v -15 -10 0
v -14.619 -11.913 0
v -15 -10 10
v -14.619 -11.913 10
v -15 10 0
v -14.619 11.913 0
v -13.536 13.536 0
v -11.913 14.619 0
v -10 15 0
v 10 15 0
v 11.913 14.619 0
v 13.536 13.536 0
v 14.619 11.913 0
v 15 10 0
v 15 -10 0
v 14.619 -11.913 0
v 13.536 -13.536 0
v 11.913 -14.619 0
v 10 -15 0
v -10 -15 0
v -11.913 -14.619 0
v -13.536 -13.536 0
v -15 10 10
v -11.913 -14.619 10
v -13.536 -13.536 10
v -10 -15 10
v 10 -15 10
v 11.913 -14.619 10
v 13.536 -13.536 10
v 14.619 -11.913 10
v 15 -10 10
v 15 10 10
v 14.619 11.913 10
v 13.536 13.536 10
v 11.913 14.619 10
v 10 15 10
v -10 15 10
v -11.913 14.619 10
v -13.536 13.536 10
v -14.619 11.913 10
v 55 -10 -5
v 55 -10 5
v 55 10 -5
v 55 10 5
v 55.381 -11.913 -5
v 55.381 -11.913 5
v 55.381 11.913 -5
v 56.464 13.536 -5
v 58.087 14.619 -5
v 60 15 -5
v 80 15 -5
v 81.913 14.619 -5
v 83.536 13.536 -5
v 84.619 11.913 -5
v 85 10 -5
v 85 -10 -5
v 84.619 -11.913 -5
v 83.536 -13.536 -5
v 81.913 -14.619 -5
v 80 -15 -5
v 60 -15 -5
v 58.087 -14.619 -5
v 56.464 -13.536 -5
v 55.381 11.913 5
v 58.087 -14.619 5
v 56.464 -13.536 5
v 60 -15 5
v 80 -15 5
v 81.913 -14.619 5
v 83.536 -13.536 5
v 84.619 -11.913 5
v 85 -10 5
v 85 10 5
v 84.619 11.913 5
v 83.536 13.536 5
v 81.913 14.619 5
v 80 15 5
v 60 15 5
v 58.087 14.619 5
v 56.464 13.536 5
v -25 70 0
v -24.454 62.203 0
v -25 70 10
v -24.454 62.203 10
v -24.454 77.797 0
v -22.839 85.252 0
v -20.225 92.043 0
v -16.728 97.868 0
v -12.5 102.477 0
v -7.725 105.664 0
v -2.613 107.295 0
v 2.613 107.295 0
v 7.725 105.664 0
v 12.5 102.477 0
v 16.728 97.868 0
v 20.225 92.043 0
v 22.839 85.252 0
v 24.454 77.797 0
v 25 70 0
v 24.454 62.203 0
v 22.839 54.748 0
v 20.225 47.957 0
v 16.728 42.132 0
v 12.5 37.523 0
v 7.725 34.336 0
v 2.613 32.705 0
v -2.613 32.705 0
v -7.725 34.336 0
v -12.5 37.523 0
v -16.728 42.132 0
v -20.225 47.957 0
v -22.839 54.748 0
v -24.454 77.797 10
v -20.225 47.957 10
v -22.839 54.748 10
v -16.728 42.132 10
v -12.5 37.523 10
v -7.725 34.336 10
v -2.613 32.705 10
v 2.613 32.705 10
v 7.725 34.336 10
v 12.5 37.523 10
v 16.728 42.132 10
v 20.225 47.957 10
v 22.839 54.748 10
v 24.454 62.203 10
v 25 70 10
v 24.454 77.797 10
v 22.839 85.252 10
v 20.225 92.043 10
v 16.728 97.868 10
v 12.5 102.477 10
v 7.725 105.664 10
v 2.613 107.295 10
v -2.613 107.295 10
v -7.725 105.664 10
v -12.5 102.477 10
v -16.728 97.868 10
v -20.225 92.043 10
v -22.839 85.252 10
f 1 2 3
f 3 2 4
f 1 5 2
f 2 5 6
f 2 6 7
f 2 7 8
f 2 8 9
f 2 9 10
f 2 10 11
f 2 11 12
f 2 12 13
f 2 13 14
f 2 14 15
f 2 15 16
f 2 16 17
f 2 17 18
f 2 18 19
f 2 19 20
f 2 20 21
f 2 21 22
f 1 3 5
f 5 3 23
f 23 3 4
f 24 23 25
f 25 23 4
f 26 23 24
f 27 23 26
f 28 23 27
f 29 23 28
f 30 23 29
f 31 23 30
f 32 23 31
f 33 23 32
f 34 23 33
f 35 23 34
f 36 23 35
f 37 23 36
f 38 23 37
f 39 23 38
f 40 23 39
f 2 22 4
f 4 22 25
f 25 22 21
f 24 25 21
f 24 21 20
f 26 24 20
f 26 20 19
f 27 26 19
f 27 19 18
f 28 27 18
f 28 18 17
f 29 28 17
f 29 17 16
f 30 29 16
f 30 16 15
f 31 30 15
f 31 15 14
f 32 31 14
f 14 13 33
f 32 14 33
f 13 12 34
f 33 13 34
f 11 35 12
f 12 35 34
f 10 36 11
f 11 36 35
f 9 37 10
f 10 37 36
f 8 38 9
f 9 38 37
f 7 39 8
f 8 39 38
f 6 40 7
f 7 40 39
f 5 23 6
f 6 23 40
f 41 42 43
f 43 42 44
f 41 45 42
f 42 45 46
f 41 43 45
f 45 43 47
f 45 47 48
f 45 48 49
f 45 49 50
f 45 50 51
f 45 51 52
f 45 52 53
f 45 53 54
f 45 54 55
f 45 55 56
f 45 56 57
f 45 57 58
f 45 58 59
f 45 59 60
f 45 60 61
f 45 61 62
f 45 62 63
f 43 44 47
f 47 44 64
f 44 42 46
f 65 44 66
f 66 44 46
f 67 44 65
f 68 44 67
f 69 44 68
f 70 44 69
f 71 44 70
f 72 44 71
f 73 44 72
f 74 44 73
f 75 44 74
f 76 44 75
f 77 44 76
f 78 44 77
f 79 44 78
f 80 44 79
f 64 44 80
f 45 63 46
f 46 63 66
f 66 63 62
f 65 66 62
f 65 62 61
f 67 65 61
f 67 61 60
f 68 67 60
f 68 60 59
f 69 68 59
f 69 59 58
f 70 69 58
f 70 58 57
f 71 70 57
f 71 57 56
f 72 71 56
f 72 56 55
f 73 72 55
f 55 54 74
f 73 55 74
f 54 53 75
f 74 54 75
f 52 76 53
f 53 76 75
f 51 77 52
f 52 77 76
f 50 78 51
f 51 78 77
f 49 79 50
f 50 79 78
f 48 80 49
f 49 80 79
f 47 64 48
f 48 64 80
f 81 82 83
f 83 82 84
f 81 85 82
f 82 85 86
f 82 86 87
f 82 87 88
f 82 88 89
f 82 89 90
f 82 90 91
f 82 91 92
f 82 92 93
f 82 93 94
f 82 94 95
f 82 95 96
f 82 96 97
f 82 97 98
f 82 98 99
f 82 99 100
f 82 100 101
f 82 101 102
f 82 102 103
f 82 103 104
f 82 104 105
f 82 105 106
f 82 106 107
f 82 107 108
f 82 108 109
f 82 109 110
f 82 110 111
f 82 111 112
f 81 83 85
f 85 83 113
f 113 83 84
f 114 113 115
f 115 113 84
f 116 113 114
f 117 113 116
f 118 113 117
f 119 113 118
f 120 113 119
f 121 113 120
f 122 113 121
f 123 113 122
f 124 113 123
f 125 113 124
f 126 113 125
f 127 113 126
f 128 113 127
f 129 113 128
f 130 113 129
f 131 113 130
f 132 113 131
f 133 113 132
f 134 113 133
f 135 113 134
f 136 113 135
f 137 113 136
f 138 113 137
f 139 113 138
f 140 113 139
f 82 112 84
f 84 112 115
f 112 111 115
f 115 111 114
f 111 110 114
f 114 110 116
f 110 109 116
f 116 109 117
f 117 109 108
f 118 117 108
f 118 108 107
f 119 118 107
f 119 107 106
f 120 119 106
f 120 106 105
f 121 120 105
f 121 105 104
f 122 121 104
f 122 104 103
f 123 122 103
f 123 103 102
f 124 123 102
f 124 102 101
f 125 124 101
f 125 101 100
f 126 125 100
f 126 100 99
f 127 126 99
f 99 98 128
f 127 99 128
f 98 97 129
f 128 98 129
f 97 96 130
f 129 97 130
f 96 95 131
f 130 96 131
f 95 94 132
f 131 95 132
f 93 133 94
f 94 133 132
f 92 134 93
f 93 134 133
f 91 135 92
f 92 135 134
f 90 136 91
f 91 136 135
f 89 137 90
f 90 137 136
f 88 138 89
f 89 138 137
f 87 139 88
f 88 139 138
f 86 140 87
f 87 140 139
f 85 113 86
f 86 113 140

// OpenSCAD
use <MCAD/2Dshapes.scad>
use <MCAD/boxes.scad>

//  # 角の丸い四角形
linear_extrude(height=10)
    roundedSquare(pos=[30,30],r=5);
// # 同様の図形をroundedBoxで表示、原点を中心に表示しているので、Z軸がずれる
translate([70, 0, 0])
    roundedBox([30, 30, 10], 5, true);
    
// # 楕円    
translate([0, 70, 0])
    linear_extrude(height=10)
        ellipse(50,75);
